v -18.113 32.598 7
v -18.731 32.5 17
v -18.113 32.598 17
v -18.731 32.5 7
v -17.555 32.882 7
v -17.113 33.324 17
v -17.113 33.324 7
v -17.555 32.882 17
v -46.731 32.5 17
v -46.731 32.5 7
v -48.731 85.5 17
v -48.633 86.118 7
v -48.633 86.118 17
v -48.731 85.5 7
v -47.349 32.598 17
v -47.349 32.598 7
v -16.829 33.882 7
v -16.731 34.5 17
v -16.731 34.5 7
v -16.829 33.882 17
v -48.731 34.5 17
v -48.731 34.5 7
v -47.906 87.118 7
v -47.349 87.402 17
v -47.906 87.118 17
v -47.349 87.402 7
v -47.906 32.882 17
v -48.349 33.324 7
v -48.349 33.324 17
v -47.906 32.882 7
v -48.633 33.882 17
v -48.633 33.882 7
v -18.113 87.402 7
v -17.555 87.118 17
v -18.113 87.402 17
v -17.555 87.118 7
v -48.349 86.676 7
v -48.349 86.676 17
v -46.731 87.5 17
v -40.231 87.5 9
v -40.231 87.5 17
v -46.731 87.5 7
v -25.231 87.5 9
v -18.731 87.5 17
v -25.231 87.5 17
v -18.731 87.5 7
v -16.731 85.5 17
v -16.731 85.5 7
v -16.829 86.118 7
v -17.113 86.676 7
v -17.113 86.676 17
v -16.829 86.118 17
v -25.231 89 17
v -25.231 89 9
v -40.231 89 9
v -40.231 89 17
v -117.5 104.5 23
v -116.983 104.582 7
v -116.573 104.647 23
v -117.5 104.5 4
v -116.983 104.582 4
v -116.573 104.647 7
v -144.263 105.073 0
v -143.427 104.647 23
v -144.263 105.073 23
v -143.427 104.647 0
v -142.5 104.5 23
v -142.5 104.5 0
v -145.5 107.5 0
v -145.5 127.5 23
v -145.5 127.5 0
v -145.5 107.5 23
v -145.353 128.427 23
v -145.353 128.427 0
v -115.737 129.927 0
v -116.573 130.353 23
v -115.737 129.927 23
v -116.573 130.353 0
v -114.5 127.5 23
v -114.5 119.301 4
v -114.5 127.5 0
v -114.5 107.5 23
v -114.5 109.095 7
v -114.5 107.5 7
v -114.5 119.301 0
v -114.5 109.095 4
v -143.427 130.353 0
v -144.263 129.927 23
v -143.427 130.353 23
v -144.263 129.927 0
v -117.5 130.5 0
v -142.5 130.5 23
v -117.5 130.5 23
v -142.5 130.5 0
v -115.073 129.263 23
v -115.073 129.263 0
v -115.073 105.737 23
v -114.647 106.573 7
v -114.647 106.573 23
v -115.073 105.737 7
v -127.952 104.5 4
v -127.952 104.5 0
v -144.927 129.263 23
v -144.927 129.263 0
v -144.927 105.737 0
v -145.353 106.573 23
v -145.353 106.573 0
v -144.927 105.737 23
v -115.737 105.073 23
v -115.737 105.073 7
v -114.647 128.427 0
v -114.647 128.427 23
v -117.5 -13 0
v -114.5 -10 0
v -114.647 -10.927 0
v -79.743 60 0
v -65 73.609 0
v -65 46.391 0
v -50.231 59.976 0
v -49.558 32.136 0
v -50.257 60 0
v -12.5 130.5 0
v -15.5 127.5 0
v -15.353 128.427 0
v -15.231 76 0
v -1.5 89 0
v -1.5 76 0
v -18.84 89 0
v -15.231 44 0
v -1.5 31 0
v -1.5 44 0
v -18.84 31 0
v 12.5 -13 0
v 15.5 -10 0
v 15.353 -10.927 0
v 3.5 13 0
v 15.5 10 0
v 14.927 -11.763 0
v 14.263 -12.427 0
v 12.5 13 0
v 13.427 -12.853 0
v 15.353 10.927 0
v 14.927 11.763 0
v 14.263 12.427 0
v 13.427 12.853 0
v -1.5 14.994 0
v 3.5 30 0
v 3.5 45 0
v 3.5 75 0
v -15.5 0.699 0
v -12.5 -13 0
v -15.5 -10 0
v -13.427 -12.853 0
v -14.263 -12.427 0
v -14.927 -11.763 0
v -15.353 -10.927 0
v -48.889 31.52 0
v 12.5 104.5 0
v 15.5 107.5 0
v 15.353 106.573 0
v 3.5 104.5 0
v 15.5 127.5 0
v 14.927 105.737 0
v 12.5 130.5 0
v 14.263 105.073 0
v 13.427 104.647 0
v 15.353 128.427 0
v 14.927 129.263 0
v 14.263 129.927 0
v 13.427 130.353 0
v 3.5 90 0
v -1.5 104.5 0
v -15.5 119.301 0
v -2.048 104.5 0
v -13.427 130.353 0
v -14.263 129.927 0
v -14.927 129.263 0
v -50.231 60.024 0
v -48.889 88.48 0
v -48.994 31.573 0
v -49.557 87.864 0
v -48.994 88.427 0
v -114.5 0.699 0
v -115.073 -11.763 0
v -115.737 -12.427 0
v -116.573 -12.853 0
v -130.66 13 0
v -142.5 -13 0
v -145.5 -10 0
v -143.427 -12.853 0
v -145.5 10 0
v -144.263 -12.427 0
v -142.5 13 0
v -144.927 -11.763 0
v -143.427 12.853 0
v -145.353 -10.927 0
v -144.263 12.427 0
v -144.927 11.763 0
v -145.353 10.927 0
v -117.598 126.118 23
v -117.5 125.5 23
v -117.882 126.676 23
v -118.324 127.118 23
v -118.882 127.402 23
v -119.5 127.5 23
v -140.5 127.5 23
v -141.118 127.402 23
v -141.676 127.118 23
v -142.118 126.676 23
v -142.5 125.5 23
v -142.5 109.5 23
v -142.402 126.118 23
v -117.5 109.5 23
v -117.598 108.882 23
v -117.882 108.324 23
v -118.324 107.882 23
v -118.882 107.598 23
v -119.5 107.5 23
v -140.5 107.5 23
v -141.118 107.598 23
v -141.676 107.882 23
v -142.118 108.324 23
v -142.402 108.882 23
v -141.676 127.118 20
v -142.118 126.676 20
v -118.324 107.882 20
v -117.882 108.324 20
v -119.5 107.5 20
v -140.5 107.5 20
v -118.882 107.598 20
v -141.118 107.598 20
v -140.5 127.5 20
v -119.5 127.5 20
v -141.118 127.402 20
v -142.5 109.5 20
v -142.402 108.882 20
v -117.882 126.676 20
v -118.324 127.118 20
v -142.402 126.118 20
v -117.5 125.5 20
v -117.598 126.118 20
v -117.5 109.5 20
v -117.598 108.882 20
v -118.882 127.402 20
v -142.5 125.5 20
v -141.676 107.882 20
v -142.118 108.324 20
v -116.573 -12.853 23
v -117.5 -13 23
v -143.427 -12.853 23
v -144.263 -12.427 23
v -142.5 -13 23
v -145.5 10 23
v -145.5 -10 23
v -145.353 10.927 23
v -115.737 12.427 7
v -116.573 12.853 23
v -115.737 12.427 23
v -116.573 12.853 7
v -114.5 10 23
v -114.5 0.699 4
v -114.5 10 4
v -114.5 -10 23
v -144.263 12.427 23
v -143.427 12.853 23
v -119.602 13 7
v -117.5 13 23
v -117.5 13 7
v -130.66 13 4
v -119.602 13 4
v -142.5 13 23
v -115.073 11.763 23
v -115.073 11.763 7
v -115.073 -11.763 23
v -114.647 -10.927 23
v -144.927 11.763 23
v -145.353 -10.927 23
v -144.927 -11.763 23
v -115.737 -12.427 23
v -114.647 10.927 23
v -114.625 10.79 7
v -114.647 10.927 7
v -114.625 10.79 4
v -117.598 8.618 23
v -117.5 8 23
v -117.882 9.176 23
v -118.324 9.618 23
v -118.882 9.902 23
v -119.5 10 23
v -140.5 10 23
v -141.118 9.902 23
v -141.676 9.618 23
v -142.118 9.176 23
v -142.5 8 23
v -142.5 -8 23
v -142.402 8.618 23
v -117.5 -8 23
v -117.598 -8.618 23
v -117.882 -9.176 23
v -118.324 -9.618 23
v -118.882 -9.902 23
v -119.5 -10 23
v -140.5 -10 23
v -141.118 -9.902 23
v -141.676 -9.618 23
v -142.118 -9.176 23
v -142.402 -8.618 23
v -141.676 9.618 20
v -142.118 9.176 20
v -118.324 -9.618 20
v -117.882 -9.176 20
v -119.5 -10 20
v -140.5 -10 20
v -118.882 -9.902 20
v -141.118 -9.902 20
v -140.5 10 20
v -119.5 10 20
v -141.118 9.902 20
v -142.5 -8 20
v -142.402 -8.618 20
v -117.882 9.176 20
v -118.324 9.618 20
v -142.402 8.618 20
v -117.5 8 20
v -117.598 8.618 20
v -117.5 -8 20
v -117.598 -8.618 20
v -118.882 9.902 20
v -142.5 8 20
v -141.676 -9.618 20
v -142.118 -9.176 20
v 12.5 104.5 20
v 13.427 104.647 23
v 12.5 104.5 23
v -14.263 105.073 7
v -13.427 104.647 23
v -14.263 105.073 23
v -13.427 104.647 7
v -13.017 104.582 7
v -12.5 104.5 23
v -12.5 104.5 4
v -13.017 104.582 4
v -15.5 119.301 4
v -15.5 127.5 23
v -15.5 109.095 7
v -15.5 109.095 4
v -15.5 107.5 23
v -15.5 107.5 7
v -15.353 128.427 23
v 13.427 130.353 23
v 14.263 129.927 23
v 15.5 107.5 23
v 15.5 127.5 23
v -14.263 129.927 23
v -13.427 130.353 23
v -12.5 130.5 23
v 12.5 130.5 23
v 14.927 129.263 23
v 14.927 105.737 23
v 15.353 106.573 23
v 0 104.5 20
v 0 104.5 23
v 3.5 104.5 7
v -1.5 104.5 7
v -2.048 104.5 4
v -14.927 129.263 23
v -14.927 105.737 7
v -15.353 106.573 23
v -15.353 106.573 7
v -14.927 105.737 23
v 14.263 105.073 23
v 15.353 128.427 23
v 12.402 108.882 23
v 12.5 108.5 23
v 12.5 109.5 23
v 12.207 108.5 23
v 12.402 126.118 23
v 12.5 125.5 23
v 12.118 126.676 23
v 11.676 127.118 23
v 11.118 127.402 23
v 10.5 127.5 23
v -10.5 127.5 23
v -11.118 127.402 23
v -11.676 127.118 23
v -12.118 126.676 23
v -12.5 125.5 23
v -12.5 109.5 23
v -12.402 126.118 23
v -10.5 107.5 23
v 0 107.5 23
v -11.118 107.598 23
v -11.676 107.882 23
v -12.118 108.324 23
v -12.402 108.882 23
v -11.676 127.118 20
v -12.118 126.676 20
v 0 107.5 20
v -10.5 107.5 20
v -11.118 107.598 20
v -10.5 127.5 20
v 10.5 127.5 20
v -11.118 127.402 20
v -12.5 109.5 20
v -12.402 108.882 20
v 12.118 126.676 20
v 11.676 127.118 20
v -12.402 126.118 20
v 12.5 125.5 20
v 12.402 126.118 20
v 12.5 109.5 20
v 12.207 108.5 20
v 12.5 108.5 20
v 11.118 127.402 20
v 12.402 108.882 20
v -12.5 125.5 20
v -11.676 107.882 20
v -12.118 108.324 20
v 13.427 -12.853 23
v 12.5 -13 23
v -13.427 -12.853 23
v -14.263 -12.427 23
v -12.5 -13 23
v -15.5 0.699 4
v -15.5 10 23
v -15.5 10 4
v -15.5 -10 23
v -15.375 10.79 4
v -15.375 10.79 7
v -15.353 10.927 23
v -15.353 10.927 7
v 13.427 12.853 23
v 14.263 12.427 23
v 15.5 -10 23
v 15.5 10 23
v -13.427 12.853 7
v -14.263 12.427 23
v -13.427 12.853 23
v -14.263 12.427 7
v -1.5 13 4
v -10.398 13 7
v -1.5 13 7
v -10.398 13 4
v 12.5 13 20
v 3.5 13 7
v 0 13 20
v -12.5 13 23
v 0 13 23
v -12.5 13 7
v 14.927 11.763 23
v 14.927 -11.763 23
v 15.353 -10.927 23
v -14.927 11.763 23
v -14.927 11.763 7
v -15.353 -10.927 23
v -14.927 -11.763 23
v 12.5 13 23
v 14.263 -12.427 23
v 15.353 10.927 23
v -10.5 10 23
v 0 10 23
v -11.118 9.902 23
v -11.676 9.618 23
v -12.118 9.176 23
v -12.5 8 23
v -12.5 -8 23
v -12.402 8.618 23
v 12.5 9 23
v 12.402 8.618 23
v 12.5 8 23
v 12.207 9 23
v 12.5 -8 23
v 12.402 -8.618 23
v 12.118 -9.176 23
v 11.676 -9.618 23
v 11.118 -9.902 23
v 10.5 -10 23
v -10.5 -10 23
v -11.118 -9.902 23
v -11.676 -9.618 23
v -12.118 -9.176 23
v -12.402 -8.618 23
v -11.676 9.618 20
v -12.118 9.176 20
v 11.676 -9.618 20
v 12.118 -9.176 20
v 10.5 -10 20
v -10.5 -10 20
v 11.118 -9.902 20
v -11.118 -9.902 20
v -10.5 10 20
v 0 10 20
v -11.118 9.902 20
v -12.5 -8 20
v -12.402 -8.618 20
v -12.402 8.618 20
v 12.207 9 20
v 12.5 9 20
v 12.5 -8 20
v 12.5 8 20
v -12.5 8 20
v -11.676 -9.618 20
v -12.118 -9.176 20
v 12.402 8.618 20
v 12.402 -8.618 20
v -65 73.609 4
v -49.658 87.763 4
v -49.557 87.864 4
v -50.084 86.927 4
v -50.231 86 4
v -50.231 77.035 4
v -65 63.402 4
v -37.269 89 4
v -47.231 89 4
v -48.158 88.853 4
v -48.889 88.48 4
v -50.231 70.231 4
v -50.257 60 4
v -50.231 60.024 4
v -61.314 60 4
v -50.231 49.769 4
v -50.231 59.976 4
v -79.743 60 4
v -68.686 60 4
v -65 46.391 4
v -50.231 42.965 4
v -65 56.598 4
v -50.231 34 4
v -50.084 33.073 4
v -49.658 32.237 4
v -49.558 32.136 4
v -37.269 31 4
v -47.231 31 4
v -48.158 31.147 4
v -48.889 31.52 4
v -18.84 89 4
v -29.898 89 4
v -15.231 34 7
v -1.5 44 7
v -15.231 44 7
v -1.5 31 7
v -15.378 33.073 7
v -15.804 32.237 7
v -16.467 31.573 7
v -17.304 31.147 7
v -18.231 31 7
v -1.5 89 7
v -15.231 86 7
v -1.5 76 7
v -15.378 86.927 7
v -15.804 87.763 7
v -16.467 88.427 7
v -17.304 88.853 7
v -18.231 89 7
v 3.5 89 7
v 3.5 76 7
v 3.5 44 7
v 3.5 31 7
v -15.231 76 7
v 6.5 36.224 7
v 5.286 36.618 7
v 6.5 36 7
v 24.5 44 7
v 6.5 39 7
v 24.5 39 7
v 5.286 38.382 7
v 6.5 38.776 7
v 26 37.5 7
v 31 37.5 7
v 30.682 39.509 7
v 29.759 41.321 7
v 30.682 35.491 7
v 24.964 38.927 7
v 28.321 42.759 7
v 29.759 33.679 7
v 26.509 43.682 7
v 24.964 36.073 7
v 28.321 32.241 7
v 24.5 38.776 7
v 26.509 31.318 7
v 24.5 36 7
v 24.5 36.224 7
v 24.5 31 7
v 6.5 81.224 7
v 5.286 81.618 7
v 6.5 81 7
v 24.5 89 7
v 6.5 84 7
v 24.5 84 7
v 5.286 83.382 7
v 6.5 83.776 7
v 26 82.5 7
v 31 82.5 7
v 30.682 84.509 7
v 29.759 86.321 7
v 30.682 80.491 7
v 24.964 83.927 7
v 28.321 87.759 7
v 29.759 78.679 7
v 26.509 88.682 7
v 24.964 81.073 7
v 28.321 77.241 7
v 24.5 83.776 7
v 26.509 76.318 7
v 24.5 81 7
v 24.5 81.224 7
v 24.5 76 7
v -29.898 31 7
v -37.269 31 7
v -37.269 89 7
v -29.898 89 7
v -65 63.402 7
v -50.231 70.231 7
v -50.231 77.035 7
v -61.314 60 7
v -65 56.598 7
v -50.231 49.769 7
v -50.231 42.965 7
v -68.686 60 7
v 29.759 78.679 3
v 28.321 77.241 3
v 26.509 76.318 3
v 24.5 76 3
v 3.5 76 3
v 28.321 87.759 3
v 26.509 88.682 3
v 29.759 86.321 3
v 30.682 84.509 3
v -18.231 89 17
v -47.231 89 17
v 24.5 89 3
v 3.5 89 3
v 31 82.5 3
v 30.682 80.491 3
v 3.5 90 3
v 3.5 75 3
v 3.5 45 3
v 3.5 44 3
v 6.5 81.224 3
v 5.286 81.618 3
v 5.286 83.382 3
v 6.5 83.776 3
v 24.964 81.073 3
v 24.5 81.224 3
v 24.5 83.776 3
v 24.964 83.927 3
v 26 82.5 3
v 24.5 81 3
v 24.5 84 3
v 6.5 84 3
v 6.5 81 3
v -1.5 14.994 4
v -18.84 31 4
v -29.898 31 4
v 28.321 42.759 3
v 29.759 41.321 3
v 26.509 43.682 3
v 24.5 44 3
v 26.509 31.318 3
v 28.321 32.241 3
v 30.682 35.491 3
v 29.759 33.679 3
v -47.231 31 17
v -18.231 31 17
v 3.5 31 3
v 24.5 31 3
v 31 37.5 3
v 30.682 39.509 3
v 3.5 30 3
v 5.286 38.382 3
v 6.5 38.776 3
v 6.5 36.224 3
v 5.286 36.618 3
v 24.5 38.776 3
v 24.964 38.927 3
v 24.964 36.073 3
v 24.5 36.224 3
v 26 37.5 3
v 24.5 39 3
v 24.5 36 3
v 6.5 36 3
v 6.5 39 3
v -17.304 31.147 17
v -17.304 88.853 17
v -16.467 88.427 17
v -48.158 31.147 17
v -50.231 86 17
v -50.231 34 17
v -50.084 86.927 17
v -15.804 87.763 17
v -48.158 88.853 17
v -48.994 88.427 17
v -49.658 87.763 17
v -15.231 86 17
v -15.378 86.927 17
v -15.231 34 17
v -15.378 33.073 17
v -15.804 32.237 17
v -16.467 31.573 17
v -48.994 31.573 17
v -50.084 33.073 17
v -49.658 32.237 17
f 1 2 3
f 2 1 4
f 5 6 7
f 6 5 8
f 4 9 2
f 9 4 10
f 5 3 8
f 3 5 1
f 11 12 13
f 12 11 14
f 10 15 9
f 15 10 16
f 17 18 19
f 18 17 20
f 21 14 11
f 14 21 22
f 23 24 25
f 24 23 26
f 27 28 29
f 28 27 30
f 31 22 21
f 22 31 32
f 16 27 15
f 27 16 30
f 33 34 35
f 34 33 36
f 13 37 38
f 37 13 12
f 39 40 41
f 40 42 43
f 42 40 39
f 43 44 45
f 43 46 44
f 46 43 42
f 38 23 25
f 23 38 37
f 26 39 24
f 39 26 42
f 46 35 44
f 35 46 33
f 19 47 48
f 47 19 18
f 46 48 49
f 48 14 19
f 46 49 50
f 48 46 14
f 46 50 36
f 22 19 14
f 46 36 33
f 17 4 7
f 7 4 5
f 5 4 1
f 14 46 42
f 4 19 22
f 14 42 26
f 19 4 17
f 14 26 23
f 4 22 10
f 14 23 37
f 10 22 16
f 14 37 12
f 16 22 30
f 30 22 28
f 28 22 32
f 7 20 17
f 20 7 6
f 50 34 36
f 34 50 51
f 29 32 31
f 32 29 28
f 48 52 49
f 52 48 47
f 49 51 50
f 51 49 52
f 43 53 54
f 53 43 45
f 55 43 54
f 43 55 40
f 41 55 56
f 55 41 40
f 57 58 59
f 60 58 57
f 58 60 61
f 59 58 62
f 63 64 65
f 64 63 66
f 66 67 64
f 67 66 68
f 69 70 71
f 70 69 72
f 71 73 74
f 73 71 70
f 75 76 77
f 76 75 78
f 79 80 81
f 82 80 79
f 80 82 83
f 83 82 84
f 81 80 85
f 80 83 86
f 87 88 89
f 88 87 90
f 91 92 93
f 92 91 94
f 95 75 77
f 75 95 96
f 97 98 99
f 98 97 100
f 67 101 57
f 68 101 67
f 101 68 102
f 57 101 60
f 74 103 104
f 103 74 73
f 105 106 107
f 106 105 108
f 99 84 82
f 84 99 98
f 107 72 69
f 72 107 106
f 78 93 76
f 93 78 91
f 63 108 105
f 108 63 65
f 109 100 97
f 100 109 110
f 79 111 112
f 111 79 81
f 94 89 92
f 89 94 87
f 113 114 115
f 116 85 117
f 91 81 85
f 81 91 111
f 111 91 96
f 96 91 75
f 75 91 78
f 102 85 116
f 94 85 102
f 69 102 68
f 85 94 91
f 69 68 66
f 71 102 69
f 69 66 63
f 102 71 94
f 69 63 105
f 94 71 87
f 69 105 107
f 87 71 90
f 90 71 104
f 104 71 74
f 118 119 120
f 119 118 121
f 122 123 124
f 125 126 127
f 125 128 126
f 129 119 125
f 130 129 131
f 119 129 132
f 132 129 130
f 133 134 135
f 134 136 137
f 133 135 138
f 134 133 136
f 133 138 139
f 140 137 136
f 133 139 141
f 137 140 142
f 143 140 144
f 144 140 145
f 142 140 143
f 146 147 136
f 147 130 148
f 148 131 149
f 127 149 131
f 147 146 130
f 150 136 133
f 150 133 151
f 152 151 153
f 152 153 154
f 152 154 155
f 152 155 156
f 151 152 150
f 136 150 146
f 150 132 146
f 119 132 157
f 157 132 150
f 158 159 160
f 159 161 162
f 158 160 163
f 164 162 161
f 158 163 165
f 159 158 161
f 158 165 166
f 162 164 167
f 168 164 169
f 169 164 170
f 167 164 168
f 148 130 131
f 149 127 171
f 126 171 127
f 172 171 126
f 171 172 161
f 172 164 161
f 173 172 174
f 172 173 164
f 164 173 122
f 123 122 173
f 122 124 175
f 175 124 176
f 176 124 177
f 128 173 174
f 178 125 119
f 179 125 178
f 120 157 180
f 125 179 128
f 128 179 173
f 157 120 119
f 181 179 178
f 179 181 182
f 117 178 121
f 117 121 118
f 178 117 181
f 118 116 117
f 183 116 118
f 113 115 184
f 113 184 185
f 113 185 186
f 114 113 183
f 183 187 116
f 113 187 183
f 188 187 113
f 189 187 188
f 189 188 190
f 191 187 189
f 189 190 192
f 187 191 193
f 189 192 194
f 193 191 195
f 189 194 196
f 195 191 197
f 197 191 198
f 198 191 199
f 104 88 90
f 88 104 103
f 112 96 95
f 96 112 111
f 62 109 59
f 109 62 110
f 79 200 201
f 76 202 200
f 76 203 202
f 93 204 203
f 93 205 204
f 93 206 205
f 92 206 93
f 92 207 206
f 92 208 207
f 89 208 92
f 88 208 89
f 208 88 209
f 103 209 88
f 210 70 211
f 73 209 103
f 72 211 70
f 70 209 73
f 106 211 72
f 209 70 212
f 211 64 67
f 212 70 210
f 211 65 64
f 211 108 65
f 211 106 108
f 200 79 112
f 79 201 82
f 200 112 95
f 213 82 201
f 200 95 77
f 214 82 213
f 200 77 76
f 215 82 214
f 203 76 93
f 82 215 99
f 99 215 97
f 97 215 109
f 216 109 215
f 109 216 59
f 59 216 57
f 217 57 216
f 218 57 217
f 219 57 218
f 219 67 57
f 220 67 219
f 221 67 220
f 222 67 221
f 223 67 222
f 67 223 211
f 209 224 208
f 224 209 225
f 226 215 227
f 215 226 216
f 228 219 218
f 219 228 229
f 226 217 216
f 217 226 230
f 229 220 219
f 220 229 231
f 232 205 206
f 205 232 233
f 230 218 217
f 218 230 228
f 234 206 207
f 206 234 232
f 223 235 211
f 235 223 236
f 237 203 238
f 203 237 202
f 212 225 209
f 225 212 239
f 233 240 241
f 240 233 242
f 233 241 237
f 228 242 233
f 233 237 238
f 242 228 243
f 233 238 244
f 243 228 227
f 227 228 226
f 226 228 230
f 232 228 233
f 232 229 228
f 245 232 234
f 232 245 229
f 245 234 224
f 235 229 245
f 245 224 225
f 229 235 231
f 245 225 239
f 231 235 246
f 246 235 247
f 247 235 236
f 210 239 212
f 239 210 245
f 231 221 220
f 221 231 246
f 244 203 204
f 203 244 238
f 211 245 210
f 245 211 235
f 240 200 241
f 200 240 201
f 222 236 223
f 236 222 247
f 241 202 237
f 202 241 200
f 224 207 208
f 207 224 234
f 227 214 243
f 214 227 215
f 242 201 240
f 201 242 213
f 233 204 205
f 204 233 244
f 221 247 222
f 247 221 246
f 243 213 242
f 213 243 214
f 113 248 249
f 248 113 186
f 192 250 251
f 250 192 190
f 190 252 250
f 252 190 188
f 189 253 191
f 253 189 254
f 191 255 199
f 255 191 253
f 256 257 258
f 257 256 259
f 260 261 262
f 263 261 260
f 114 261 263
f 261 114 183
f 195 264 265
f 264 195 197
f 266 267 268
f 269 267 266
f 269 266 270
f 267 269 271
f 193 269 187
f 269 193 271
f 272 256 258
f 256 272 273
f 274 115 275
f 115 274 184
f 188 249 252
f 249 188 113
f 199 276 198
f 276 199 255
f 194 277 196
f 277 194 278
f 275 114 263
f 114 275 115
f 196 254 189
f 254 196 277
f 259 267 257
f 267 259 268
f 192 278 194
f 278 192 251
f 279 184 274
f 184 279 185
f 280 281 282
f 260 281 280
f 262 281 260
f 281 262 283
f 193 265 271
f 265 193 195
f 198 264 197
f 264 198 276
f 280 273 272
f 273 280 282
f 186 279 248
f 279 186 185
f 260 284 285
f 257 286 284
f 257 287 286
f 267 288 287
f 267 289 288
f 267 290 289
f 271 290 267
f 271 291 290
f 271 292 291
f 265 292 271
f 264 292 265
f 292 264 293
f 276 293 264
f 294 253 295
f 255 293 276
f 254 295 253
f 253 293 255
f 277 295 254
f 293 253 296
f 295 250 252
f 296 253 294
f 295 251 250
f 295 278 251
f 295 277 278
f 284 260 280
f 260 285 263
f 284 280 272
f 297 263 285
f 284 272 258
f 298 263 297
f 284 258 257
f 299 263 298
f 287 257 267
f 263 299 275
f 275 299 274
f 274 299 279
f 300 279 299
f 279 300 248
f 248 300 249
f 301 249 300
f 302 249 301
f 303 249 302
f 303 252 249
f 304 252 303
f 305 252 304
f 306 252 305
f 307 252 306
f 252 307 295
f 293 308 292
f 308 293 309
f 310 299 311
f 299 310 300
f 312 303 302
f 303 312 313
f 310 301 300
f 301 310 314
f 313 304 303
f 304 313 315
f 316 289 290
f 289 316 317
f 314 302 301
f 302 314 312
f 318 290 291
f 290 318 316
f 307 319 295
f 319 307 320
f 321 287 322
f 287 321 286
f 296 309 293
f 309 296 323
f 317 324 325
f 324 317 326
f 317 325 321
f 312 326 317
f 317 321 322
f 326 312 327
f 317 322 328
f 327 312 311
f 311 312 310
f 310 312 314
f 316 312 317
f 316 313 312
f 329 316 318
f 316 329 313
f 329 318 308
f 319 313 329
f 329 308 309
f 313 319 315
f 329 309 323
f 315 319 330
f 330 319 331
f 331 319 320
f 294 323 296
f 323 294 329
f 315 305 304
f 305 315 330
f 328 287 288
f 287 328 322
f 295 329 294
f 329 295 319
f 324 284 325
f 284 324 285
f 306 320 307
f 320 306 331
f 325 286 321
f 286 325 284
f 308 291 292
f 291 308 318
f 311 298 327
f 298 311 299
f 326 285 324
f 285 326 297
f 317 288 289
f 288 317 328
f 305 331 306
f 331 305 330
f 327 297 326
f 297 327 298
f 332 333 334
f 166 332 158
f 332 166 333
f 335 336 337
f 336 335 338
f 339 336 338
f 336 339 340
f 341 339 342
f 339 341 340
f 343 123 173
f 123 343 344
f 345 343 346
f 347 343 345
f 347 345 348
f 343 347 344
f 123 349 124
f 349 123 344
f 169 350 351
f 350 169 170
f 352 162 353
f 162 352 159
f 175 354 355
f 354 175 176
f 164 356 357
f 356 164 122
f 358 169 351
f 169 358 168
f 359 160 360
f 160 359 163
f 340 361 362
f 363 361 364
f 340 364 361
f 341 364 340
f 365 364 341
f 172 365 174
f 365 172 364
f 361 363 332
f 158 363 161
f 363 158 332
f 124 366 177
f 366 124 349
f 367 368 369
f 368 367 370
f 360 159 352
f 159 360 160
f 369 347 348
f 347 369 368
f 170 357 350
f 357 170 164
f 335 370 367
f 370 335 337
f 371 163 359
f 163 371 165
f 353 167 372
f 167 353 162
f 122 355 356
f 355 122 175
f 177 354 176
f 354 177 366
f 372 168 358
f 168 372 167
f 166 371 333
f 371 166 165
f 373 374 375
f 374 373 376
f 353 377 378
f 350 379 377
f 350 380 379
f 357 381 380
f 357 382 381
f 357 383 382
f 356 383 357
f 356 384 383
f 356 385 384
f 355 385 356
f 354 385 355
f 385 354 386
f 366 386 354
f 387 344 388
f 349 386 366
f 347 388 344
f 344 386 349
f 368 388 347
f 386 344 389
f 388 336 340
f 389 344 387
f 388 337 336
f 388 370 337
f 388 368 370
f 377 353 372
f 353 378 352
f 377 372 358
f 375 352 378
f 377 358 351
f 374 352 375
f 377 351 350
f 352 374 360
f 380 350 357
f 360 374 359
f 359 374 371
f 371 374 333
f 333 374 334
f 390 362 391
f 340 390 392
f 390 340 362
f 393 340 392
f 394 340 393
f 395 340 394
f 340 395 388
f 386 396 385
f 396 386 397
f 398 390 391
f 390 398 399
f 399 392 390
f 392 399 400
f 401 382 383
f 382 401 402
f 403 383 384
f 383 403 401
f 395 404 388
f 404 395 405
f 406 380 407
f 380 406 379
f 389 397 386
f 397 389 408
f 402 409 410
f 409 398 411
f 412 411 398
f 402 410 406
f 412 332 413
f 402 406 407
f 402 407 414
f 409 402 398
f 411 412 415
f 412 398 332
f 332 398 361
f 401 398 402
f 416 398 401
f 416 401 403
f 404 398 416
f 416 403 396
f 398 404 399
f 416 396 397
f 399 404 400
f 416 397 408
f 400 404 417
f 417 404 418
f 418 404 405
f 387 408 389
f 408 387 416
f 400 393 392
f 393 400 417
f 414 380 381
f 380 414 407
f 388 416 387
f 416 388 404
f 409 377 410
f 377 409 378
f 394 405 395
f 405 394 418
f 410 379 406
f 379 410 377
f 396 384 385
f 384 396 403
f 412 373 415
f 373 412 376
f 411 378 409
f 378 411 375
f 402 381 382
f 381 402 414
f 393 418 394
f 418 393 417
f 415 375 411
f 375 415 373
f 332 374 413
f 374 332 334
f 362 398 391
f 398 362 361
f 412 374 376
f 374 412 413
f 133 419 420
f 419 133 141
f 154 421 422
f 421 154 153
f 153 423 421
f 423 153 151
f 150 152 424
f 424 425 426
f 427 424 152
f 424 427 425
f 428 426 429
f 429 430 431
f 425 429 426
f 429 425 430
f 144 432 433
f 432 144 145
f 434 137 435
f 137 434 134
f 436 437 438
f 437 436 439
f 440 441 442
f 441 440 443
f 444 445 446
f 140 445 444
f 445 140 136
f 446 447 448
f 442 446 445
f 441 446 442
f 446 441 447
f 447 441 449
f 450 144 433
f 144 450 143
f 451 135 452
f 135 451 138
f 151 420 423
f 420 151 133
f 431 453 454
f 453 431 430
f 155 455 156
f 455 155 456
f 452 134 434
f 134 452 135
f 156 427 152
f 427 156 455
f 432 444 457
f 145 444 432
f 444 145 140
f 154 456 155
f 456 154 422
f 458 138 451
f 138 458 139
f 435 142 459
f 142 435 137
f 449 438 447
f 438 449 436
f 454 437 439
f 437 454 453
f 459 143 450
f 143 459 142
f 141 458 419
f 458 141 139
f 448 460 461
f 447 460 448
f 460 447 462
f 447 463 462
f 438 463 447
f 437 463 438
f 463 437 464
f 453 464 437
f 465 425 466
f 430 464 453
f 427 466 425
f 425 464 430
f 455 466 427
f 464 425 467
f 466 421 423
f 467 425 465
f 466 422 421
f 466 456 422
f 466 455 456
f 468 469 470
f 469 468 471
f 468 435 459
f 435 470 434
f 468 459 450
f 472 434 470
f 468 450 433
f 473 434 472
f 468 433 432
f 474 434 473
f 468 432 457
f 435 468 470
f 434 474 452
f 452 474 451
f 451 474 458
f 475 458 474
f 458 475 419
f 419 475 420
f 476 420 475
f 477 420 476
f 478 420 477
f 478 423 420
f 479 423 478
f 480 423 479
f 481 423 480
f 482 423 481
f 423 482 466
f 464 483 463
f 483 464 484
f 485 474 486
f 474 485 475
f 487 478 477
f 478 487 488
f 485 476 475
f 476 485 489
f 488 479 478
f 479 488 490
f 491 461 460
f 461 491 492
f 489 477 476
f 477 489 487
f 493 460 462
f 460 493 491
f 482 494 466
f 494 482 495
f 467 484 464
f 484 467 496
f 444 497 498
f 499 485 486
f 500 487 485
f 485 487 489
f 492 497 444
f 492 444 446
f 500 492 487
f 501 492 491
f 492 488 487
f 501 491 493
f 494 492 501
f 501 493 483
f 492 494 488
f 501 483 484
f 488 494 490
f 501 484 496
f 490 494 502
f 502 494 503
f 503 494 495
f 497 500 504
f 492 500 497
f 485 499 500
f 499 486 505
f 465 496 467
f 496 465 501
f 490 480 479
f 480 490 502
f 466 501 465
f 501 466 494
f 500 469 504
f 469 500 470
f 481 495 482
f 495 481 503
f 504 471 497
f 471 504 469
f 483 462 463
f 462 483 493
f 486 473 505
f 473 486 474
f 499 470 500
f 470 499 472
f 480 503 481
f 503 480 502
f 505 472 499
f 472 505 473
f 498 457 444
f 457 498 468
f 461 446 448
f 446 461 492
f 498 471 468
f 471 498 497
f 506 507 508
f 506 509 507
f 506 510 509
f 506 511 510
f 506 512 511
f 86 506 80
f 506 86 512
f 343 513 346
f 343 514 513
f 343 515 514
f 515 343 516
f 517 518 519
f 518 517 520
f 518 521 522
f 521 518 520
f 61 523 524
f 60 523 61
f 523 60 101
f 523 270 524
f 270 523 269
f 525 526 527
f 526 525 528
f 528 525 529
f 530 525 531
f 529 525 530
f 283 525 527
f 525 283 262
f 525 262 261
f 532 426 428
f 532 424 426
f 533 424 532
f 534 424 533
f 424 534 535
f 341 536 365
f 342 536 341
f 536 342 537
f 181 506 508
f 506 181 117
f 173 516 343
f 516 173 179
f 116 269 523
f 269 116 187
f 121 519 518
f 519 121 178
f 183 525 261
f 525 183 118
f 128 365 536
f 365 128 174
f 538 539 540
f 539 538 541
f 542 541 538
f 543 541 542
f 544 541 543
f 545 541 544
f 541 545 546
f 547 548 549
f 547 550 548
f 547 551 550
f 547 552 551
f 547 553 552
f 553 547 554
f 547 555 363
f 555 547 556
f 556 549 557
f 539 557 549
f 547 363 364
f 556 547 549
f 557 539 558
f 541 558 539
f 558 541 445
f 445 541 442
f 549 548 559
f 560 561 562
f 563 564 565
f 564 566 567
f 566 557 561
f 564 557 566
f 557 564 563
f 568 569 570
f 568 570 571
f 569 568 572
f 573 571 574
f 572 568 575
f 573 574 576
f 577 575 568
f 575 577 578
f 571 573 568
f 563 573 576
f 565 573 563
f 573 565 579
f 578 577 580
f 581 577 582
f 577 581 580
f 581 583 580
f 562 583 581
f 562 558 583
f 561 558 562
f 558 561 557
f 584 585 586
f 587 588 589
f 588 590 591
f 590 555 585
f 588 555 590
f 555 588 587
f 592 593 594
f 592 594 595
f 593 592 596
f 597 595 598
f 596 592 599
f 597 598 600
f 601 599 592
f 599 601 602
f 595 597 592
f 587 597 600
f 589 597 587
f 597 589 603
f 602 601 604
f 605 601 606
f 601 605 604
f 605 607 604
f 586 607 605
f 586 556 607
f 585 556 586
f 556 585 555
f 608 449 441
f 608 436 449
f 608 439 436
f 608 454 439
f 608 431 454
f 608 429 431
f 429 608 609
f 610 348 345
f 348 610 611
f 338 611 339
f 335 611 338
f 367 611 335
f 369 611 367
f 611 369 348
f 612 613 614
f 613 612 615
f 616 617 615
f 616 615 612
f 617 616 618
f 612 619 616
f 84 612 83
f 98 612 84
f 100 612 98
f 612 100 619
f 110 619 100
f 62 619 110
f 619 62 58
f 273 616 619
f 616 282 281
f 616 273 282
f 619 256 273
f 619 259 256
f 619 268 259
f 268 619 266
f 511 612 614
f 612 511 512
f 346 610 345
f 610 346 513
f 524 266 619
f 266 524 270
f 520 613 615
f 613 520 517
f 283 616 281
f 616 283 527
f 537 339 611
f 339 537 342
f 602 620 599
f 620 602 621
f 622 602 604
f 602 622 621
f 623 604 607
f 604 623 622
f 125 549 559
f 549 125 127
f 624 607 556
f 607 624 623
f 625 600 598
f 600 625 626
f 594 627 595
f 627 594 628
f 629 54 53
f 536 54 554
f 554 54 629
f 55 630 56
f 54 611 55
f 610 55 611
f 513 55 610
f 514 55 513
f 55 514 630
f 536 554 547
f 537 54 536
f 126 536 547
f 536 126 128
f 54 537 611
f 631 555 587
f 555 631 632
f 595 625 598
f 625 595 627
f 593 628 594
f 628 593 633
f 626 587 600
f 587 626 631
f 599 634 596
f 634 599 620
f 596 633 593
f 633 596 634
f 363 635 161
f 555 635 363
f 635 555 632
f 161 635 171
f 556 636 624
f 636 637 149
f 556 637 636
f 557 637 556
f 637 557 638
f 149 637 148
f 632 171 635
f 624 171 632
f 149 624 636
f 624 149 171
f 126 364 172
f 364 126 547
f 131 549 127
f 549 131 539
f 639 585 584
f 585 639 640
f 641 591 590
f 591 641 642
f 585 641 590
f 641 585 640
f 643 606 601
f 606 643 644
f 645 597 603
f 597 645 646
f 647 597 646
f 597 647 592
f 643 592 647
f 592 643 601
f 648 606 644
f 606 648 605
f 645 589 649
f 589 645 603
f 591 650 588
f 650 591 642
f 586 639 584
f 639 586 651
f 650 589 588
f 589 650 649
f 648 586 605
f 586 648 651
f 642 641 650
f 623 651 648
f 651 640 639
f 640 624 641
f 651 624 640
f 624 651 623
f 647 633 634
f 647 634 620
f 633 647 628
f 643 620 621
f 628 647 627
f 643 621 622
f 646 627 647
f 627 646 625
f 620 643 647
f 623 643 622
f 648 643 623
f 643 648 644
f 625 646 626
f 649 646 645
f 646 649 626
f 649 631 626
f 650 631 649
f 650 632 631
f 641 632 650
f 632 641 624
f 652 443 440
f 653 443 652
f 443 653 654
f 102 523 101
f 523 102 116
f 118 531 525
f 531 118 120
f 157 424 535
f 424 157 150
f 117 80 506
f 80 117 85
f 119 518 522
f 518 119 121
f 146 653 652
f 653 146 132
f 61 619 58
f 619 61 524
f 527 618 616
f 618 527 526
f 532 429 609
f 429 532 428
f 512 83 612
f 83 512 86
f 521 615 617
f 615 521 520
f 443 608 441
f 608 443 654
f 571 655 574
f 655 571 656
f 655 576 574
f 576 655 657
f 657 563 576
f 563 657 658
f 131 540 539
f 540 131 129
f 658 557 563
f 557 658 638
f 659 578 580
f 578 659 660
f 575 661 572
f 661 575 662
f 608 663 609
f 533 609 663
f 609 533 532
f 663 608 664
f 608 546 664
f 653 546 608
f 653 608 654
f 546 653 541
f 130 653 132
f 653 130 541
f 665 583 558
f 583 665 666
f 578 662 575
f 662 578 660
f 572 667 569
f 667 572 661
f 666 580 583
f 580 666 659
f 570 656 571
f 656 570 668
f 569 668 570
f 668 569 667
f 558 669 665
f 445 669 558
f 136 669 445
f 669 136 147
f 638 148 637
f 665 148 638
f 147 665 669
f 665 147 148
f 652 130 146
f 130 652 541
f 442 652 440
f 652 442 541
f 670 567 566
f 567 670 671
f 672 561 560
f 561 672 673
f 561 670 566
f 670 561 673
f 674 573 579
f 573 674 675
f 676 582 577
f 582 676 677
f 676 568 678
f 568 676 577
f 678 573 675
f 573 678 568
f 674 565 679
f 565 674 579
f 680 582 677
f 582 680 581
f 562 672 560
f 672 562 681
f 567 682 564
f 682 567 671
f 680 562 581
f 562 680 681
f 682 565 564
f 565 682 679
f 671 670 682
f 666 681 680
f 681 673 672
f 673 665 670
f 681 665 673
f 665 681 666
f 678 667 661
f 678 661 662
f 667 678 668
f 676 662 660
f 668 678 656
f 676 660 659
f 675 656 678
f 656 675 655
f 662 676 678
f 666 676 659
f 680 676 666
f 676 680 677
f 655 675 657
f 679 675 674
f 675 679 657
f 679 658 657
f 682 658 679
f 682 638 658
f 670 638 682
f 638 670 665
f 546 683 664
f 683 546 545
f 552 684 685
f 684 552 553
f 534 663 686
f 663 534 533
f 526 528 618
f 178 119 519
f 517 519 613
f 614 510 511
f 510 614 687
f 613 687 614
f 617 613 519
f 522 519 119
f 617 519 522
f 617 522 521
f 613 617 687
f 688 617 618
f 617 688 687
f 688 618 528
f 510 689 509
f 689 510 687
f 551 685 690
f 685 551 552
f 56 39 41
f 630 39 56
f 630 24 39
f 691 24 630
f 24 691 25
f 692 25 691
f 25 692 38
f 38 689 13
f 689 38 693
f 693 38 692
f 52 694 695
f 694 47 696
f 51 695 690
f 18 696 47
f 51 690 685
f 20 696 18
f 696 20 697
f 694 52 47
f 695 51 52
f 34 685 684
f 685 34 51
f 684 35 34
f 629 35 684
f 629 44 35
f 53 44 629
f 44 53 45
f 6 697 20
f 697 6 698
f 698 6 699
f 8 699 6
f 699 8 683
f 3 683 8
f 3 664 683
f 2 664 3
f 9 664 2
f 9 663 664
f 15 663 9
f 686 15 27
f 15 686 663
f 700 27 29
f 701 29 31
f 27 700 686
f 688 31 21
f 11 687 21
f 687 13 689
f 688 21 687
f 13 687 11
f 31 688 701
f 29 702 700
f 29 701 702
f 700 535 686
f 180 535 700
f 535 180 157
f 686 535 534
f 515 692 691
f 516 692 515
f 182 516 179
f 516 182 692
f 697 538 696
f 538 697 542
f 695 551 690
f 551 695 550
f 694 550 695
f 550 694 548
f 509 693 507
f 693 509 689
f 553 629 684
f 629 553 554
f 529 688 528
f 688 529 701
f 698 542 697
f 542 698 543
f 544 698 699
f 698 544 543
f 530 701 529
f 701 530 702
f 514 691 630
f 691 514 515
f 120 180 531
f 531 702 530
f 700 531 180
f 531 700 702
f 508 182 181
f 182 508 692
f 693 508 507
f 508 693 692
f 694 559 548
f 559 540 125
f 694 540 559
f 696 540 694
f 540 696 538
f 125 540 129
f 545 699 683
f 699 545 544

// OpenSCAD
// file: _shared-vars.scad
carafeWidth = 133;

footWidth = 25; // TODO
footDepth = 20; // TODO
footDistanceX = 130; // TODO
footDistanceY = 120; // TODO
coffeeMachineLiftHeight = 20; // TODO

loadCellWidth = 12.7;
loadCellThickness = 12.7;
loadCellLength = 80;
loadCellBoltDistance = 15;
loadCellPlateBoltDiameter = 4;
loadCellPlateBoltInset = 5;
loadCellBaseBoltDiameter = 5;

loadCellCarafeOffset = (carafeWidth - loadCellLength) / 4;

assemblyNutThickness = 2.5;
assemblyNutWidth = 6.3;
assemblyNutHeight = 5.55;
assemblyBoltDiameter = 3;
assemblyBoltDistance = 45;
assemblyBoltInset = 3;
// main file
include <./_shared-vars.scad>;
include <./lib/Round-Anything/polyround.scad>;

baseArmThickness = 4;
baseArmWidth = 20;
armStiffenerThickness = 3;
armStiffenerWidth = 5;
diagonalLength = sqrt(footDistanceX * footDistanceX + footDistanceY * footDistanceY);
footWallThickness = 3;
footWallWidth = 3;
footOuterRadius = 3;
footInnerRadius = 2;

mcuBoardWidth = 32;
mcuBoardLength = 55;
mcuBoardHolderHeight = 10;
mcuBoardHolderWallThickness = 1.5;
usbConnectorHeight = 8;
usbConnectorWidth = 15;

attachArmsRadius = 3;
attachArmsThickness = 4;
attachArmsLift = 3;
attachArmSlideLength = 18;
attachArmBaseLength = footDistanceX / 2 + footWidth / 2 + footWallWidth - attachArmSlideLength / 2;
attachArmsWidth = assemblyBoltDiameter + assemblyBoltInset * 2 + 4;
attachArmsLength = attachArmBaseLength + attachArmSlideLength + attachArmsWidth / 2;

crossMemberAngle = atan(footDistanceY / footDistanceX);

module coffeeMachineBase() {
   translate([ -footDistanceX - footWidth / 2 - footWallWidth, footDistanceY - footWidth / 2 - footWallWidth, 0 ])
   footSupport();

   translate([ -footDistanceX - footWidth / 2 - footWallWidth, -footDepth / 2 - footWallWidth, 0 ])
   footSupport();

   translate([ -footWidth / 2 - footWallWidth, footDistanceY - footWidth / 2 - footWallWidth, 0 ])
   difference() {
      footSupport();
      translate([ footWallWidth + footWidth / 2, -1, coffeeMachineLiftHeight ])
      cube([ footWidth / 2,  footWallWidth + 2, footWallThickness + 1 ], footInnerRadius);
   }

   translate([ -footWidth / 2 - footWallWidth, -footDepth / 2 - footWallWidth, 0 ])
   difference() {
      footSupport();
      translate([ footWallWidth + footWidth / 2, footDepth + footWallWidth - 1, coffeeMachineLiftHeight ])
      cube([ footWidth / 2,  footWallWidth + 2, footWallThickness + 1 ], footInnerRadius);
   }

   difference() {
      union() {
         translate([ -footDistanceX / 2, footDistanceY / 2, 0 ])
         crossMember();

         translate([ -footDistanceX / 2, footDistanceY / 2, 0 ])
         mirror([0, 1, 0])
         crossMember();

         translate([ -footDistanceX / 2 + (mcuBoardLength / 2 + mcuBoardHolderWallThickness - attachArmsWidth) * tan(crossMemberAngle), footDistanceY / 2 - mcuBoardLength / 2 - mcuBoardHolderWallThickness, 0 ])
         roundedCube([
            mcuBoardWidth + mcuBoardHolderWallThickness * 2,
            mcuBoardLength + mcuBoardHolderWallThickness * 2,
            mcuBoardHolderHeight + attachArmsThickness + attachArmsLift
         ], 3);
      }

      translate([
         -footDistanceX / 2 + (mcuBoardLength / 2 + mcuBoardHolderWallThickness - attachArmsWidth) * tan(crossMemberAngle) + mcuBoardHolderWallThickness,
         footDistanceY / 2 - mcuBoardLength / 2,
         attachArmsThickness + attachArmsLift
      ]) {
         roundedCube([ mcuBoardWidth, mcuBoardLength, mcuBoardHolderHeight + 1 ], 2);
         translate([ mcuBoardWidth / 2 - usbConnectorWidth / 2, mcuBoardLength - 1, mcuBoardHolderHeight - usbConnectorHeight ])
         cube([ usbConnectorWidth, mcuBoardHolderWallThickness + 2, usbConnectorHeight + 1 ], 2);
      }
   }
}

module footSupport() {
   difference() {
      roundedCube([ footWidth + footWallWidth * 2, footDepth + footWallWidth * 2, coffeeMachineLiftHeight + footWallThickness ], footOuterRadius);
      translate([ footWallWidth, footWallWidth, coffeeMachineLiftHeight ])
      roundedCube([ footWidth, footDepth, footWallThickness + 1 ], footInnerRadius);
   }
}

module crossMember() {
   rotate([ 0, 0, crossMemberAngle ]) {
      translate([ -diagonalLength / 2, -baseArmWidth / 2, 0 ])
      cube([ diagonalLength, baseArmWidth, baseArmThickness ]);

      translate([ -diagonalLength / 2, -armStiffenerWidth / 2, baseArmThickness ])
      cube([ diagonalLength, armStiffenerWidth, armStiffenerThickness ]);
   }


   translate([ 0, assemblyBoltDistance / 2 ])
   difference() {
      union() {
         translate([ 0, - attachArmsWidth / 2, 0 ])
         linear_extrude(height = attachArmsThickness + attachArmsLift)
         polygon(polyRound([
            [ assemblyBoltDistance / 2 - attachArmsWidth / 2 * tan(crossMemberAngle), 0, 0 ],
            [ attachArmsLength, 0, attachArmsWidth / 2 ],
            [ attachArmsLength, attachArmsWidth, attachArmsWidth / 2 ],
            [ assemblyBoltDistance / 2 + attachArmsWidth / 2 * tan(crossMemberAngle), attachArmsWidth, 0 ],
         ]));

         translate([ attachArmBaseLength - assemblyBoltInset - armStiffenerWidth, -assemblyBoltDistance / 2, 0 ])
         cube([ armStiffenerWidth, footDistanceY / 2, attachArmsThickness + attachArmsLift ]);
      }

      translate([ attachArmBaseLength, 0, attachArmsLift - 1 ])
      cylinder(r = assemblyBoltDiameter / 2, h = attachArmsThickness + 2);
      translate([ attachArmBaseLength + attachArmSlideLength, 0, attachArmsLift - 1 ])
      cylinder(r = assemblyBoltDiameter / 2, h = attachArmsThickness + 2);
      translate([ attachArmBaseLength, - assemblyBoltDiameter / 2, attachArmsLift - 1 ])
      cube([ attachArmSlideLength, assemblyBoltDiameter, attachArmsThickness + 2 ]);

      translate([ attachArmBaseLength - assemblyBoltInset, - attachArmsWidth / 2 - 1, -1 ])
      cube([ attachArmsLength - attachArmBaseLength + assemblyBoltInset + 1, attachArmsWidth + 2, attachArmsLift + 1 ]);
   }
}

module roundedCube(size = [10, 10, 10], radius = 1) {
   linear_extrude(height = size[2])
   polygon(polyRound([
      [ 0, 0, radius ],
      [ size[0], 0, radius ],
      [ size[0], size[1], radius ],
      [ 0, size[1], radius ],
   ]));
}

coffeeMachineBase();
